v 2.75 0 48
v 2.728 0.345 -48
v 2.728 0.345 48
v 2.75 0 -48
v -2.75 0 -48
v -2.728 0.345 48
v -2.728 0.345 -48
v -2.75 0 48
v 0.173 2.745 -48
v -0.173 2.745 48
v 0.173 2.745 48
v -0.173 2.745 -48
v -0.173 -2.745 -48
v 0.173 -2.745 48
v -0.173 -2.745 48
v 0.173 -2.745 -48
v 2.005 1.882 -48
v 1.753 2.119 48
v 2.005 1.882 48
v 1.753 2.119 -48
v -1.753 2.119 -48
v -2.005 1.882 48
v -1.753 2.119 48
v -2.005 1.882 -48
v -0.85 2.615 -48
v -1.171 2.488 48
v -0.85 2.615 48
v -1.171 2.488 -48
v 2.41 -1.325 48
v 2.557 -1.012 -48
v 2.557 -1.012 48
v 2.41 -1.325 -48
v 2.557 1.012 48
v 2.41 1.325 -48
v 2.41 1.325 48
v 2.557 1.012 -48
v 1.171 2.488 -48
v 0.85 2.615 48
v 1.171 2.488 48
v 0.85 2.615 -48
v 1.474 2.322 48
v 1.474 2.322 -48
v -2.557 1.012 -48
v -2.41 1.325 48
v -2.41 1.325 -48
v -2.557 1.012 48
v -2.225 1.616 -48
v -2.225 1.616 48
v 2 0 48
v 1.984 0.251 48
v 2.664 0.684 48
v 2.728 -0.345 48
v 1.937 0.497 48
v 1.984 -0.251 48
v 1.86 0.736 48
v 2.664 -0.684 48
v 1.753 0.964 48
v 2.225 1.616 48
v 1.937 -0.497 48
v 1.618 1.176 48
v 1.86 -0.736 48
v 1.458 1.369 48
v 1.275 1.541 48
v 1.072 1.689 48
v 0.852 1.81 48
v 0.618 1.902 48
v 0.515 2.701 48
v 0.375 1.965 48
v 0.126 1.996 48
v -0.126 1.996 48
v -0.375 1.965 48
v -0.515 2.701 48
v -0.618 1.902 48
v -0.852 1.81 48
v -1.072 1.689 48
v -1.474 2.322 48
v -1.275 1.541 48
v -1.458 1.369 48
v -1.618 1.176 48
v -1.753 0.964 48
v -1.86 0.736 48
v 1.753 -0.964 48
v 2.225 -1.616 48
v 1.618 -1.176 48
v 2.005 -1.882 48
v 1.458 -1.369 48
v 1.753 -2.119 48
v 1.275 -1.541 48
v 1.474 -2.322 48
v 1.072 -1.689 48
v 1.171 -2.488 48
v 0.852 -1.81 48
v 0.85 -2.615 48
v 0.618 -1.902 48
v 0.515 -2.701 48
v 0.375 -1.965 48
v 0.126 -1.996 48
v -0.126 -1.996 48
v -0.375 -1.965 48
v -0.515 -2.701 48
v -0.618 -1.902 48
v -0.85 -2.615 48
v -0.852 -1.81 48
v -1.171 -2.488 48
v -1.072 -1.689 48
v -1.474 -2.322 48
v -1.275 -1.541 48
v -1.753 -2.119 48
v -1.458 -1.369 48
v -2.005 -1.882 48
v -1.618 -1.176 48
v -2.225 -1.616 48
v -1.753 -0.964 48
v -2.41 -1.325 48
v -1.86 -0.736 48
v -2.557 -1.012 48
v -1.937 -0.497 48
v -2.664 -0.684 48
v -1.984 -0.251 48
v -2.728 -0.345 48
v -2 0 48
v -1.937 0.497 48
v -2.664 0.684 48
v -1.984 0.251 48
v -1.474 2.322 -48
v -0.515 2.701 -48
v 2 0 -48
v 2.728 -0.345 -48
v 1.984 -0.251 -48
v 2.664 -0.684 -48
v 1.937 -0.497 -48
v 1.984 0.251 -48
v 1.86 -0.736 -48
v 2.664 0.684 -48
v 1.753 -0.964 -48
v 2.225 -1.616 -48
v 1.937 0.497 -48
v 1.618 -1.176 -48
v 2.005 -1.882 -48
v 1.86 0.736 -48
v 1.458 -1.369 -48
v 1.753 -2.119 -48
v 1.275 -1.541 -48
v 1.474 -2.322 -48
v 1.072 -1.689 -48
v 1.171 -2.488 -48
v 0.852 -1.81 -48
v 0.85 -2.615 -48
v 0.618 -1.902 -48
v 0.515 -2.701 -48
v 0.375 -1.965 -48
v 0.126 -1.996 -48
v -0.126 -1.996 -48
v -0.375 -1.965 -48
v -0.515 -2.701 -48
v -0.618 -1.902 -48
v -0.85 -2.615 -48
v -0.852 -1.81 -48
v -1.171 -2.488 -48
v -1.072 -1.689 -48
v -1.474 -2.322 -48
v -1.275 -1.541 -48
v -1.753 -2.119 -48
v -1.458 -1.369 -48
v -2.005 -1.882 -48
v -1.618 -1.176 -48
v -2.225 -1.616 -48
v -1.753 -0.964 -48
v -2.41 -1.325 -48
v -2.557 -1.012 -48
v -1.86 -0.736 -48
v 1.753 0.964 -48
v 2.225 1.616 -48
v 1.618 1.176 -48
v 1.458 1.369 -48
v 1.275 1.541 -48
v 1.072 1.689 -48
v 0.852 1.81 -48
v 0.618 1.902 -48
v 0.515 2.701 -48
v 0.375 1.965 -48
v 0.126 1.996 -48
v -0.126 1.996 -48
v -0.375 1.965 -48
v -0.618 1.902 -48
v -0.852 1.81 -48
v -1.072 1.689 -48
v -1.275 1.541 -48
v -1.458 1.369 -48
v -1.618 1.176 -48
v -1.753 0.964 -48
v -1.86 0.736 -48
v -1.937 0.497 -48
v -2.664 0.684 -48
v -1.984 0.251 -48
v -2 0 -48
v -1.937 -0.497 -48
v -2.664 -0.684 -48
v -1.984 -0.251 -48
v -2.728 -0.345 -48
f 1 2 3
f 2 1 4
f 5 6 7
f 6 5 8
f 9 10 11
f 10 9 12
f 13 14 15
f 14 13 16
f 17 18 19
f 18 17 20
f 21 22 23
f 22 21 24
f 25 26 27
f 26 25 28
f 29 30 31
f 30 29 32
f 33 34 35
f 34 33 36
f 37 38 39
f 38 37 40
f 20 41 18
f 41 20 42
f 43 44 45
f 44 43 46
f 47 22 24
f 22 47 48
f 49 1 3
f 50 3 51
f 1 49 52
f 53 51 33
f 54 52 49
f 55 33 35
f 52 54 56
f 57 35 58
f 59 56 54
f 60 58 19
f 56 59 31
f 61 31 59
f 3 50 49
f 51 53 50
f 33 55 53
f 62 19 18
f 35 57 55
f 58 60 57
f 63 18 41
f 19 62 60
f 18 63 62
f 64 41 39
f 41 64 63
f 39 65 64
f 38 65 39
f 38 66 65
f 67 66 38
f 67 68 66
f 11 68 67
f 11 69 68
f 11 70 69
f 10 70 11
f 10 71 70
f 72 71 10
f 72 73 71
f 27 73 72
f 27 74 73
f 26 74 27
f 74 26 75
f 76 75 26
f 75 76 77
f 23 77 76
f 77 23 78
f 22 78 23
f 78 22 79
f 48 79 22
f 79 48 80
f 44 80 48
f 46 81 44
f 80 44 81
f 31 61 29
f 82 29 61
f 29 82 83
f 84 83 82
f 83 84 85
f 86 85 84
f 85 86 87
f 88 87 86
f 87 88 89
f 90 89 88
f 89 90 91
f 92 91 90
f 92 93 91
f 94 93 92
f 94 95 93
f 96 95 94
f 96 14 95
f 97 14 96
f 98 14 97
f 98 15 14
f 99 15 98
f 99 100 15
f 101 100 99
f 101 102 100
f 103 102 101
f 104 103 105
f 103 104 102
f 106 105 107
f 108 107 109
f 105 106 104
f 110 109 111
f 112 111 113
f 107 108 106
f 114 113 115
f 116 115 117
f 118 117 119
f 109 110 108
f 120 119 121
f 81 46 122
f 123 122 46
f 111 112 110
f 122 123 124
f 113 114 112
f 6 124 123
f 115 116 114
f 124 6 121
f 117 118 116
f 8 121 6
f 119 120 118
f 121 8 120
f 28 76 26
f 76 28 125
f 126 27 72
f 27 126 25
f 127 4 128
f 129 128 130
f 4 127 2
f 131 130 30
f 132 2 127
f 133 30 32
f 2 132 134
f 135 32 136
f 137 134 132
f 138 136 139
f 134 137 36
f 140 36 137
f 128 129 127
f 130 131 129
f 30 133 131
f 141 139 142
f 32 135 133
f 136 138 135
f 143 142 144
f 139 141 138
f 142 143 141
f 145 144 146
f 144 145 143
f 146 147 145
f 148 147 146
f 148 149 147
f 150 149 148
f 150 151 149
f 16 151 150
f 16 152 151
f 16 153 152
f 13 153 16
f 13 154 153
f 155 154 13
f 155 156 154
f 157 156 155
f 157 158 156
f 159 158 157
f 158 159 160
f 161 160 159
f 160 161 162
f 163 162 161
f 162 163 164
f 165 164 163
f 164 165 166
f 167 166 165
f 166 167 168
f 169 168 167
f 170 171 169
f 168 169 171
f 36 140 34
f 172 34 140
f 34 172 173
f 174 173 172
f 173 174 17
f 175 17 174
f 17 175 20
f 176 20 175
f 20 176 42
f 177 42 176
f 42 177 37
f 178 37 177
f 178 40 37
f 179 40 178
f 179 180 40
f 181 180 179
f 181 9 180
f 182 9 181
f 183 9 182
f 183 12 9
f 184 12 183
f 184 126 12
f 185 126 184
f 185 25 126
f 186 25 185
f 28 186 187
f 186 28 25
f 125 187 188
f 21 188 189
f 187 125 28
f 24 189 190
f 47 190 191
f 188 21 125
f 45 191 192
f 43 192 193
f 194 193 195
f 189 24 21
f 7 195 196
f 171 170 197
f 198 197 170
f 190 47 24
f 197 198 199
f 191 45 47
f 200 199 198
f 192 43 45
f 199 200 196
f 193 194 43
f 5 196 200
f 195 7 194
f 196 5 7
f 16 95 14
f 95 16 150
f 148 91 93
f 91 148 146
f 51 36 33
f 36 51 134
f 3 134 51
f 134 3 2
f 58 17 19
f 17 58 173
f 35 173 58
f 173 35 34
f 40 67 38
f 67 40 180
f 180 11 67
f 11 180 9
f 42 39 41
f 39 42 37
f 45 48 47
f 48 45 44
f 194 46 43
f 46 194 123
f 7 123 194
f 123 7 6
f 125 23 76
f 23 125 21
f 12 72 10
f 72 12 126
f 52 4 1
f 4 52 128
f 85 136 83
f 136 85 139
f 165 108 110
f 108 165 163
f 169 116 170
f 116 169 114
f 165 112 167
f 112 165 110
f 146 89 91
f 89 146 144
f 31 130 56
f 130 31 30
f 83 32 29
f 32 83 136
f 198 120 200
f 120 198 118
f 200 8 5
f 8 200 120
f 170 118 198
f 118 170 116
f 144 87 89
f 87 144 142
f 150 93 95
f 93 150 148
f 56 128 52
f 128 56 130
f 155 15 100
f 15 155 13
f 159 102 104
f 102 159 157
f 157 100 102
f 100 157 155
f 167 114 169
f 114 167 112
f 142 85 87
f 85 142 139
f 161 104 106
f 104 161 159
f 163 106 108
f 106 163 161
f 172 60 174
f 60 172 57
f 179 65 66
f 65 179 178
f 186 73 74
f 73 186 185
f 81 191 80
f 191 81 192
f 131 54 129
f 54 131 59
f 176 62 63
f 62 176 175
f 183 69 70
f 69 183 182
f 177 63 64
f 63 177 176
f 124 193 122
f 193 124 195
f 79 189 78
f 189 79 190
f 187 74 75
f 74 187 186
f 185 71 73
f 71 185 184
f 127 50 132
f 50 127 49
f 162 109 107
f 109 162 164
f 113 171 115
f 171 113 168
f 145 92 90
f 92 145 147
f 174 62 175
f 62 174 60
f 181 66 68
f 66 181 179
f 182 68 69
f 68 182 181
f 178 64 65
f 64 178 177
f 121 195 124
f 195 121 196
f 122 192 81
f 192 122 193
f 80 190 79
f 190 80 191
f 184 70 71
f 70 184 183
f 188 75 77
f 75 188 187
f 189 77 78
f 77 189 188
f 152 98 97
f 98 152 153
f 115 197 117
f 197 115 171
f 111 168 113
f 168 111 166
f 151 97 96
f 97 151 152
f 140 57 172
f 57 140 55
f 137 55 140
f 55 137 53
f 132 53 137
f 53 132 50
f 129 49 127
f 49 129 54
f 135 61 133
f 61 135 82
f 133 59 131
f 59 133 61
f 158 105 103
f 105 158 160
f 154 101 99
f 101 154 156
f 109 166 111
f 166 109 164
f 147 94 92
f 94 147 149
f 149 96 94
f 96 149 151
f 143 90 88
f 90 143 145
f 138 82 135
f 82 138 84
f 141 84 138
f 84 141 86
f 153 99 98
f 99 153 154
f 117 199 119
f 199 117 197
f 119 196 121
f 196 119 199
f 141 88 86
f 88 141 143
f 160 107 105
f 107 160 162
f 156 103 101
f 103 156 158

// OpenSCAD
$fn = 50;


difference() {
	union() {
		translate(v = [0, 0, -48.0000000000]) {
			cylinder(h = 96, r = 2.7500000000);
		}
	}
	union() {
		translate(v = [0, 0, -100.0000000000]) {
			cylinder(h = 200, r = 2.0000000000);
		}
	}
}
